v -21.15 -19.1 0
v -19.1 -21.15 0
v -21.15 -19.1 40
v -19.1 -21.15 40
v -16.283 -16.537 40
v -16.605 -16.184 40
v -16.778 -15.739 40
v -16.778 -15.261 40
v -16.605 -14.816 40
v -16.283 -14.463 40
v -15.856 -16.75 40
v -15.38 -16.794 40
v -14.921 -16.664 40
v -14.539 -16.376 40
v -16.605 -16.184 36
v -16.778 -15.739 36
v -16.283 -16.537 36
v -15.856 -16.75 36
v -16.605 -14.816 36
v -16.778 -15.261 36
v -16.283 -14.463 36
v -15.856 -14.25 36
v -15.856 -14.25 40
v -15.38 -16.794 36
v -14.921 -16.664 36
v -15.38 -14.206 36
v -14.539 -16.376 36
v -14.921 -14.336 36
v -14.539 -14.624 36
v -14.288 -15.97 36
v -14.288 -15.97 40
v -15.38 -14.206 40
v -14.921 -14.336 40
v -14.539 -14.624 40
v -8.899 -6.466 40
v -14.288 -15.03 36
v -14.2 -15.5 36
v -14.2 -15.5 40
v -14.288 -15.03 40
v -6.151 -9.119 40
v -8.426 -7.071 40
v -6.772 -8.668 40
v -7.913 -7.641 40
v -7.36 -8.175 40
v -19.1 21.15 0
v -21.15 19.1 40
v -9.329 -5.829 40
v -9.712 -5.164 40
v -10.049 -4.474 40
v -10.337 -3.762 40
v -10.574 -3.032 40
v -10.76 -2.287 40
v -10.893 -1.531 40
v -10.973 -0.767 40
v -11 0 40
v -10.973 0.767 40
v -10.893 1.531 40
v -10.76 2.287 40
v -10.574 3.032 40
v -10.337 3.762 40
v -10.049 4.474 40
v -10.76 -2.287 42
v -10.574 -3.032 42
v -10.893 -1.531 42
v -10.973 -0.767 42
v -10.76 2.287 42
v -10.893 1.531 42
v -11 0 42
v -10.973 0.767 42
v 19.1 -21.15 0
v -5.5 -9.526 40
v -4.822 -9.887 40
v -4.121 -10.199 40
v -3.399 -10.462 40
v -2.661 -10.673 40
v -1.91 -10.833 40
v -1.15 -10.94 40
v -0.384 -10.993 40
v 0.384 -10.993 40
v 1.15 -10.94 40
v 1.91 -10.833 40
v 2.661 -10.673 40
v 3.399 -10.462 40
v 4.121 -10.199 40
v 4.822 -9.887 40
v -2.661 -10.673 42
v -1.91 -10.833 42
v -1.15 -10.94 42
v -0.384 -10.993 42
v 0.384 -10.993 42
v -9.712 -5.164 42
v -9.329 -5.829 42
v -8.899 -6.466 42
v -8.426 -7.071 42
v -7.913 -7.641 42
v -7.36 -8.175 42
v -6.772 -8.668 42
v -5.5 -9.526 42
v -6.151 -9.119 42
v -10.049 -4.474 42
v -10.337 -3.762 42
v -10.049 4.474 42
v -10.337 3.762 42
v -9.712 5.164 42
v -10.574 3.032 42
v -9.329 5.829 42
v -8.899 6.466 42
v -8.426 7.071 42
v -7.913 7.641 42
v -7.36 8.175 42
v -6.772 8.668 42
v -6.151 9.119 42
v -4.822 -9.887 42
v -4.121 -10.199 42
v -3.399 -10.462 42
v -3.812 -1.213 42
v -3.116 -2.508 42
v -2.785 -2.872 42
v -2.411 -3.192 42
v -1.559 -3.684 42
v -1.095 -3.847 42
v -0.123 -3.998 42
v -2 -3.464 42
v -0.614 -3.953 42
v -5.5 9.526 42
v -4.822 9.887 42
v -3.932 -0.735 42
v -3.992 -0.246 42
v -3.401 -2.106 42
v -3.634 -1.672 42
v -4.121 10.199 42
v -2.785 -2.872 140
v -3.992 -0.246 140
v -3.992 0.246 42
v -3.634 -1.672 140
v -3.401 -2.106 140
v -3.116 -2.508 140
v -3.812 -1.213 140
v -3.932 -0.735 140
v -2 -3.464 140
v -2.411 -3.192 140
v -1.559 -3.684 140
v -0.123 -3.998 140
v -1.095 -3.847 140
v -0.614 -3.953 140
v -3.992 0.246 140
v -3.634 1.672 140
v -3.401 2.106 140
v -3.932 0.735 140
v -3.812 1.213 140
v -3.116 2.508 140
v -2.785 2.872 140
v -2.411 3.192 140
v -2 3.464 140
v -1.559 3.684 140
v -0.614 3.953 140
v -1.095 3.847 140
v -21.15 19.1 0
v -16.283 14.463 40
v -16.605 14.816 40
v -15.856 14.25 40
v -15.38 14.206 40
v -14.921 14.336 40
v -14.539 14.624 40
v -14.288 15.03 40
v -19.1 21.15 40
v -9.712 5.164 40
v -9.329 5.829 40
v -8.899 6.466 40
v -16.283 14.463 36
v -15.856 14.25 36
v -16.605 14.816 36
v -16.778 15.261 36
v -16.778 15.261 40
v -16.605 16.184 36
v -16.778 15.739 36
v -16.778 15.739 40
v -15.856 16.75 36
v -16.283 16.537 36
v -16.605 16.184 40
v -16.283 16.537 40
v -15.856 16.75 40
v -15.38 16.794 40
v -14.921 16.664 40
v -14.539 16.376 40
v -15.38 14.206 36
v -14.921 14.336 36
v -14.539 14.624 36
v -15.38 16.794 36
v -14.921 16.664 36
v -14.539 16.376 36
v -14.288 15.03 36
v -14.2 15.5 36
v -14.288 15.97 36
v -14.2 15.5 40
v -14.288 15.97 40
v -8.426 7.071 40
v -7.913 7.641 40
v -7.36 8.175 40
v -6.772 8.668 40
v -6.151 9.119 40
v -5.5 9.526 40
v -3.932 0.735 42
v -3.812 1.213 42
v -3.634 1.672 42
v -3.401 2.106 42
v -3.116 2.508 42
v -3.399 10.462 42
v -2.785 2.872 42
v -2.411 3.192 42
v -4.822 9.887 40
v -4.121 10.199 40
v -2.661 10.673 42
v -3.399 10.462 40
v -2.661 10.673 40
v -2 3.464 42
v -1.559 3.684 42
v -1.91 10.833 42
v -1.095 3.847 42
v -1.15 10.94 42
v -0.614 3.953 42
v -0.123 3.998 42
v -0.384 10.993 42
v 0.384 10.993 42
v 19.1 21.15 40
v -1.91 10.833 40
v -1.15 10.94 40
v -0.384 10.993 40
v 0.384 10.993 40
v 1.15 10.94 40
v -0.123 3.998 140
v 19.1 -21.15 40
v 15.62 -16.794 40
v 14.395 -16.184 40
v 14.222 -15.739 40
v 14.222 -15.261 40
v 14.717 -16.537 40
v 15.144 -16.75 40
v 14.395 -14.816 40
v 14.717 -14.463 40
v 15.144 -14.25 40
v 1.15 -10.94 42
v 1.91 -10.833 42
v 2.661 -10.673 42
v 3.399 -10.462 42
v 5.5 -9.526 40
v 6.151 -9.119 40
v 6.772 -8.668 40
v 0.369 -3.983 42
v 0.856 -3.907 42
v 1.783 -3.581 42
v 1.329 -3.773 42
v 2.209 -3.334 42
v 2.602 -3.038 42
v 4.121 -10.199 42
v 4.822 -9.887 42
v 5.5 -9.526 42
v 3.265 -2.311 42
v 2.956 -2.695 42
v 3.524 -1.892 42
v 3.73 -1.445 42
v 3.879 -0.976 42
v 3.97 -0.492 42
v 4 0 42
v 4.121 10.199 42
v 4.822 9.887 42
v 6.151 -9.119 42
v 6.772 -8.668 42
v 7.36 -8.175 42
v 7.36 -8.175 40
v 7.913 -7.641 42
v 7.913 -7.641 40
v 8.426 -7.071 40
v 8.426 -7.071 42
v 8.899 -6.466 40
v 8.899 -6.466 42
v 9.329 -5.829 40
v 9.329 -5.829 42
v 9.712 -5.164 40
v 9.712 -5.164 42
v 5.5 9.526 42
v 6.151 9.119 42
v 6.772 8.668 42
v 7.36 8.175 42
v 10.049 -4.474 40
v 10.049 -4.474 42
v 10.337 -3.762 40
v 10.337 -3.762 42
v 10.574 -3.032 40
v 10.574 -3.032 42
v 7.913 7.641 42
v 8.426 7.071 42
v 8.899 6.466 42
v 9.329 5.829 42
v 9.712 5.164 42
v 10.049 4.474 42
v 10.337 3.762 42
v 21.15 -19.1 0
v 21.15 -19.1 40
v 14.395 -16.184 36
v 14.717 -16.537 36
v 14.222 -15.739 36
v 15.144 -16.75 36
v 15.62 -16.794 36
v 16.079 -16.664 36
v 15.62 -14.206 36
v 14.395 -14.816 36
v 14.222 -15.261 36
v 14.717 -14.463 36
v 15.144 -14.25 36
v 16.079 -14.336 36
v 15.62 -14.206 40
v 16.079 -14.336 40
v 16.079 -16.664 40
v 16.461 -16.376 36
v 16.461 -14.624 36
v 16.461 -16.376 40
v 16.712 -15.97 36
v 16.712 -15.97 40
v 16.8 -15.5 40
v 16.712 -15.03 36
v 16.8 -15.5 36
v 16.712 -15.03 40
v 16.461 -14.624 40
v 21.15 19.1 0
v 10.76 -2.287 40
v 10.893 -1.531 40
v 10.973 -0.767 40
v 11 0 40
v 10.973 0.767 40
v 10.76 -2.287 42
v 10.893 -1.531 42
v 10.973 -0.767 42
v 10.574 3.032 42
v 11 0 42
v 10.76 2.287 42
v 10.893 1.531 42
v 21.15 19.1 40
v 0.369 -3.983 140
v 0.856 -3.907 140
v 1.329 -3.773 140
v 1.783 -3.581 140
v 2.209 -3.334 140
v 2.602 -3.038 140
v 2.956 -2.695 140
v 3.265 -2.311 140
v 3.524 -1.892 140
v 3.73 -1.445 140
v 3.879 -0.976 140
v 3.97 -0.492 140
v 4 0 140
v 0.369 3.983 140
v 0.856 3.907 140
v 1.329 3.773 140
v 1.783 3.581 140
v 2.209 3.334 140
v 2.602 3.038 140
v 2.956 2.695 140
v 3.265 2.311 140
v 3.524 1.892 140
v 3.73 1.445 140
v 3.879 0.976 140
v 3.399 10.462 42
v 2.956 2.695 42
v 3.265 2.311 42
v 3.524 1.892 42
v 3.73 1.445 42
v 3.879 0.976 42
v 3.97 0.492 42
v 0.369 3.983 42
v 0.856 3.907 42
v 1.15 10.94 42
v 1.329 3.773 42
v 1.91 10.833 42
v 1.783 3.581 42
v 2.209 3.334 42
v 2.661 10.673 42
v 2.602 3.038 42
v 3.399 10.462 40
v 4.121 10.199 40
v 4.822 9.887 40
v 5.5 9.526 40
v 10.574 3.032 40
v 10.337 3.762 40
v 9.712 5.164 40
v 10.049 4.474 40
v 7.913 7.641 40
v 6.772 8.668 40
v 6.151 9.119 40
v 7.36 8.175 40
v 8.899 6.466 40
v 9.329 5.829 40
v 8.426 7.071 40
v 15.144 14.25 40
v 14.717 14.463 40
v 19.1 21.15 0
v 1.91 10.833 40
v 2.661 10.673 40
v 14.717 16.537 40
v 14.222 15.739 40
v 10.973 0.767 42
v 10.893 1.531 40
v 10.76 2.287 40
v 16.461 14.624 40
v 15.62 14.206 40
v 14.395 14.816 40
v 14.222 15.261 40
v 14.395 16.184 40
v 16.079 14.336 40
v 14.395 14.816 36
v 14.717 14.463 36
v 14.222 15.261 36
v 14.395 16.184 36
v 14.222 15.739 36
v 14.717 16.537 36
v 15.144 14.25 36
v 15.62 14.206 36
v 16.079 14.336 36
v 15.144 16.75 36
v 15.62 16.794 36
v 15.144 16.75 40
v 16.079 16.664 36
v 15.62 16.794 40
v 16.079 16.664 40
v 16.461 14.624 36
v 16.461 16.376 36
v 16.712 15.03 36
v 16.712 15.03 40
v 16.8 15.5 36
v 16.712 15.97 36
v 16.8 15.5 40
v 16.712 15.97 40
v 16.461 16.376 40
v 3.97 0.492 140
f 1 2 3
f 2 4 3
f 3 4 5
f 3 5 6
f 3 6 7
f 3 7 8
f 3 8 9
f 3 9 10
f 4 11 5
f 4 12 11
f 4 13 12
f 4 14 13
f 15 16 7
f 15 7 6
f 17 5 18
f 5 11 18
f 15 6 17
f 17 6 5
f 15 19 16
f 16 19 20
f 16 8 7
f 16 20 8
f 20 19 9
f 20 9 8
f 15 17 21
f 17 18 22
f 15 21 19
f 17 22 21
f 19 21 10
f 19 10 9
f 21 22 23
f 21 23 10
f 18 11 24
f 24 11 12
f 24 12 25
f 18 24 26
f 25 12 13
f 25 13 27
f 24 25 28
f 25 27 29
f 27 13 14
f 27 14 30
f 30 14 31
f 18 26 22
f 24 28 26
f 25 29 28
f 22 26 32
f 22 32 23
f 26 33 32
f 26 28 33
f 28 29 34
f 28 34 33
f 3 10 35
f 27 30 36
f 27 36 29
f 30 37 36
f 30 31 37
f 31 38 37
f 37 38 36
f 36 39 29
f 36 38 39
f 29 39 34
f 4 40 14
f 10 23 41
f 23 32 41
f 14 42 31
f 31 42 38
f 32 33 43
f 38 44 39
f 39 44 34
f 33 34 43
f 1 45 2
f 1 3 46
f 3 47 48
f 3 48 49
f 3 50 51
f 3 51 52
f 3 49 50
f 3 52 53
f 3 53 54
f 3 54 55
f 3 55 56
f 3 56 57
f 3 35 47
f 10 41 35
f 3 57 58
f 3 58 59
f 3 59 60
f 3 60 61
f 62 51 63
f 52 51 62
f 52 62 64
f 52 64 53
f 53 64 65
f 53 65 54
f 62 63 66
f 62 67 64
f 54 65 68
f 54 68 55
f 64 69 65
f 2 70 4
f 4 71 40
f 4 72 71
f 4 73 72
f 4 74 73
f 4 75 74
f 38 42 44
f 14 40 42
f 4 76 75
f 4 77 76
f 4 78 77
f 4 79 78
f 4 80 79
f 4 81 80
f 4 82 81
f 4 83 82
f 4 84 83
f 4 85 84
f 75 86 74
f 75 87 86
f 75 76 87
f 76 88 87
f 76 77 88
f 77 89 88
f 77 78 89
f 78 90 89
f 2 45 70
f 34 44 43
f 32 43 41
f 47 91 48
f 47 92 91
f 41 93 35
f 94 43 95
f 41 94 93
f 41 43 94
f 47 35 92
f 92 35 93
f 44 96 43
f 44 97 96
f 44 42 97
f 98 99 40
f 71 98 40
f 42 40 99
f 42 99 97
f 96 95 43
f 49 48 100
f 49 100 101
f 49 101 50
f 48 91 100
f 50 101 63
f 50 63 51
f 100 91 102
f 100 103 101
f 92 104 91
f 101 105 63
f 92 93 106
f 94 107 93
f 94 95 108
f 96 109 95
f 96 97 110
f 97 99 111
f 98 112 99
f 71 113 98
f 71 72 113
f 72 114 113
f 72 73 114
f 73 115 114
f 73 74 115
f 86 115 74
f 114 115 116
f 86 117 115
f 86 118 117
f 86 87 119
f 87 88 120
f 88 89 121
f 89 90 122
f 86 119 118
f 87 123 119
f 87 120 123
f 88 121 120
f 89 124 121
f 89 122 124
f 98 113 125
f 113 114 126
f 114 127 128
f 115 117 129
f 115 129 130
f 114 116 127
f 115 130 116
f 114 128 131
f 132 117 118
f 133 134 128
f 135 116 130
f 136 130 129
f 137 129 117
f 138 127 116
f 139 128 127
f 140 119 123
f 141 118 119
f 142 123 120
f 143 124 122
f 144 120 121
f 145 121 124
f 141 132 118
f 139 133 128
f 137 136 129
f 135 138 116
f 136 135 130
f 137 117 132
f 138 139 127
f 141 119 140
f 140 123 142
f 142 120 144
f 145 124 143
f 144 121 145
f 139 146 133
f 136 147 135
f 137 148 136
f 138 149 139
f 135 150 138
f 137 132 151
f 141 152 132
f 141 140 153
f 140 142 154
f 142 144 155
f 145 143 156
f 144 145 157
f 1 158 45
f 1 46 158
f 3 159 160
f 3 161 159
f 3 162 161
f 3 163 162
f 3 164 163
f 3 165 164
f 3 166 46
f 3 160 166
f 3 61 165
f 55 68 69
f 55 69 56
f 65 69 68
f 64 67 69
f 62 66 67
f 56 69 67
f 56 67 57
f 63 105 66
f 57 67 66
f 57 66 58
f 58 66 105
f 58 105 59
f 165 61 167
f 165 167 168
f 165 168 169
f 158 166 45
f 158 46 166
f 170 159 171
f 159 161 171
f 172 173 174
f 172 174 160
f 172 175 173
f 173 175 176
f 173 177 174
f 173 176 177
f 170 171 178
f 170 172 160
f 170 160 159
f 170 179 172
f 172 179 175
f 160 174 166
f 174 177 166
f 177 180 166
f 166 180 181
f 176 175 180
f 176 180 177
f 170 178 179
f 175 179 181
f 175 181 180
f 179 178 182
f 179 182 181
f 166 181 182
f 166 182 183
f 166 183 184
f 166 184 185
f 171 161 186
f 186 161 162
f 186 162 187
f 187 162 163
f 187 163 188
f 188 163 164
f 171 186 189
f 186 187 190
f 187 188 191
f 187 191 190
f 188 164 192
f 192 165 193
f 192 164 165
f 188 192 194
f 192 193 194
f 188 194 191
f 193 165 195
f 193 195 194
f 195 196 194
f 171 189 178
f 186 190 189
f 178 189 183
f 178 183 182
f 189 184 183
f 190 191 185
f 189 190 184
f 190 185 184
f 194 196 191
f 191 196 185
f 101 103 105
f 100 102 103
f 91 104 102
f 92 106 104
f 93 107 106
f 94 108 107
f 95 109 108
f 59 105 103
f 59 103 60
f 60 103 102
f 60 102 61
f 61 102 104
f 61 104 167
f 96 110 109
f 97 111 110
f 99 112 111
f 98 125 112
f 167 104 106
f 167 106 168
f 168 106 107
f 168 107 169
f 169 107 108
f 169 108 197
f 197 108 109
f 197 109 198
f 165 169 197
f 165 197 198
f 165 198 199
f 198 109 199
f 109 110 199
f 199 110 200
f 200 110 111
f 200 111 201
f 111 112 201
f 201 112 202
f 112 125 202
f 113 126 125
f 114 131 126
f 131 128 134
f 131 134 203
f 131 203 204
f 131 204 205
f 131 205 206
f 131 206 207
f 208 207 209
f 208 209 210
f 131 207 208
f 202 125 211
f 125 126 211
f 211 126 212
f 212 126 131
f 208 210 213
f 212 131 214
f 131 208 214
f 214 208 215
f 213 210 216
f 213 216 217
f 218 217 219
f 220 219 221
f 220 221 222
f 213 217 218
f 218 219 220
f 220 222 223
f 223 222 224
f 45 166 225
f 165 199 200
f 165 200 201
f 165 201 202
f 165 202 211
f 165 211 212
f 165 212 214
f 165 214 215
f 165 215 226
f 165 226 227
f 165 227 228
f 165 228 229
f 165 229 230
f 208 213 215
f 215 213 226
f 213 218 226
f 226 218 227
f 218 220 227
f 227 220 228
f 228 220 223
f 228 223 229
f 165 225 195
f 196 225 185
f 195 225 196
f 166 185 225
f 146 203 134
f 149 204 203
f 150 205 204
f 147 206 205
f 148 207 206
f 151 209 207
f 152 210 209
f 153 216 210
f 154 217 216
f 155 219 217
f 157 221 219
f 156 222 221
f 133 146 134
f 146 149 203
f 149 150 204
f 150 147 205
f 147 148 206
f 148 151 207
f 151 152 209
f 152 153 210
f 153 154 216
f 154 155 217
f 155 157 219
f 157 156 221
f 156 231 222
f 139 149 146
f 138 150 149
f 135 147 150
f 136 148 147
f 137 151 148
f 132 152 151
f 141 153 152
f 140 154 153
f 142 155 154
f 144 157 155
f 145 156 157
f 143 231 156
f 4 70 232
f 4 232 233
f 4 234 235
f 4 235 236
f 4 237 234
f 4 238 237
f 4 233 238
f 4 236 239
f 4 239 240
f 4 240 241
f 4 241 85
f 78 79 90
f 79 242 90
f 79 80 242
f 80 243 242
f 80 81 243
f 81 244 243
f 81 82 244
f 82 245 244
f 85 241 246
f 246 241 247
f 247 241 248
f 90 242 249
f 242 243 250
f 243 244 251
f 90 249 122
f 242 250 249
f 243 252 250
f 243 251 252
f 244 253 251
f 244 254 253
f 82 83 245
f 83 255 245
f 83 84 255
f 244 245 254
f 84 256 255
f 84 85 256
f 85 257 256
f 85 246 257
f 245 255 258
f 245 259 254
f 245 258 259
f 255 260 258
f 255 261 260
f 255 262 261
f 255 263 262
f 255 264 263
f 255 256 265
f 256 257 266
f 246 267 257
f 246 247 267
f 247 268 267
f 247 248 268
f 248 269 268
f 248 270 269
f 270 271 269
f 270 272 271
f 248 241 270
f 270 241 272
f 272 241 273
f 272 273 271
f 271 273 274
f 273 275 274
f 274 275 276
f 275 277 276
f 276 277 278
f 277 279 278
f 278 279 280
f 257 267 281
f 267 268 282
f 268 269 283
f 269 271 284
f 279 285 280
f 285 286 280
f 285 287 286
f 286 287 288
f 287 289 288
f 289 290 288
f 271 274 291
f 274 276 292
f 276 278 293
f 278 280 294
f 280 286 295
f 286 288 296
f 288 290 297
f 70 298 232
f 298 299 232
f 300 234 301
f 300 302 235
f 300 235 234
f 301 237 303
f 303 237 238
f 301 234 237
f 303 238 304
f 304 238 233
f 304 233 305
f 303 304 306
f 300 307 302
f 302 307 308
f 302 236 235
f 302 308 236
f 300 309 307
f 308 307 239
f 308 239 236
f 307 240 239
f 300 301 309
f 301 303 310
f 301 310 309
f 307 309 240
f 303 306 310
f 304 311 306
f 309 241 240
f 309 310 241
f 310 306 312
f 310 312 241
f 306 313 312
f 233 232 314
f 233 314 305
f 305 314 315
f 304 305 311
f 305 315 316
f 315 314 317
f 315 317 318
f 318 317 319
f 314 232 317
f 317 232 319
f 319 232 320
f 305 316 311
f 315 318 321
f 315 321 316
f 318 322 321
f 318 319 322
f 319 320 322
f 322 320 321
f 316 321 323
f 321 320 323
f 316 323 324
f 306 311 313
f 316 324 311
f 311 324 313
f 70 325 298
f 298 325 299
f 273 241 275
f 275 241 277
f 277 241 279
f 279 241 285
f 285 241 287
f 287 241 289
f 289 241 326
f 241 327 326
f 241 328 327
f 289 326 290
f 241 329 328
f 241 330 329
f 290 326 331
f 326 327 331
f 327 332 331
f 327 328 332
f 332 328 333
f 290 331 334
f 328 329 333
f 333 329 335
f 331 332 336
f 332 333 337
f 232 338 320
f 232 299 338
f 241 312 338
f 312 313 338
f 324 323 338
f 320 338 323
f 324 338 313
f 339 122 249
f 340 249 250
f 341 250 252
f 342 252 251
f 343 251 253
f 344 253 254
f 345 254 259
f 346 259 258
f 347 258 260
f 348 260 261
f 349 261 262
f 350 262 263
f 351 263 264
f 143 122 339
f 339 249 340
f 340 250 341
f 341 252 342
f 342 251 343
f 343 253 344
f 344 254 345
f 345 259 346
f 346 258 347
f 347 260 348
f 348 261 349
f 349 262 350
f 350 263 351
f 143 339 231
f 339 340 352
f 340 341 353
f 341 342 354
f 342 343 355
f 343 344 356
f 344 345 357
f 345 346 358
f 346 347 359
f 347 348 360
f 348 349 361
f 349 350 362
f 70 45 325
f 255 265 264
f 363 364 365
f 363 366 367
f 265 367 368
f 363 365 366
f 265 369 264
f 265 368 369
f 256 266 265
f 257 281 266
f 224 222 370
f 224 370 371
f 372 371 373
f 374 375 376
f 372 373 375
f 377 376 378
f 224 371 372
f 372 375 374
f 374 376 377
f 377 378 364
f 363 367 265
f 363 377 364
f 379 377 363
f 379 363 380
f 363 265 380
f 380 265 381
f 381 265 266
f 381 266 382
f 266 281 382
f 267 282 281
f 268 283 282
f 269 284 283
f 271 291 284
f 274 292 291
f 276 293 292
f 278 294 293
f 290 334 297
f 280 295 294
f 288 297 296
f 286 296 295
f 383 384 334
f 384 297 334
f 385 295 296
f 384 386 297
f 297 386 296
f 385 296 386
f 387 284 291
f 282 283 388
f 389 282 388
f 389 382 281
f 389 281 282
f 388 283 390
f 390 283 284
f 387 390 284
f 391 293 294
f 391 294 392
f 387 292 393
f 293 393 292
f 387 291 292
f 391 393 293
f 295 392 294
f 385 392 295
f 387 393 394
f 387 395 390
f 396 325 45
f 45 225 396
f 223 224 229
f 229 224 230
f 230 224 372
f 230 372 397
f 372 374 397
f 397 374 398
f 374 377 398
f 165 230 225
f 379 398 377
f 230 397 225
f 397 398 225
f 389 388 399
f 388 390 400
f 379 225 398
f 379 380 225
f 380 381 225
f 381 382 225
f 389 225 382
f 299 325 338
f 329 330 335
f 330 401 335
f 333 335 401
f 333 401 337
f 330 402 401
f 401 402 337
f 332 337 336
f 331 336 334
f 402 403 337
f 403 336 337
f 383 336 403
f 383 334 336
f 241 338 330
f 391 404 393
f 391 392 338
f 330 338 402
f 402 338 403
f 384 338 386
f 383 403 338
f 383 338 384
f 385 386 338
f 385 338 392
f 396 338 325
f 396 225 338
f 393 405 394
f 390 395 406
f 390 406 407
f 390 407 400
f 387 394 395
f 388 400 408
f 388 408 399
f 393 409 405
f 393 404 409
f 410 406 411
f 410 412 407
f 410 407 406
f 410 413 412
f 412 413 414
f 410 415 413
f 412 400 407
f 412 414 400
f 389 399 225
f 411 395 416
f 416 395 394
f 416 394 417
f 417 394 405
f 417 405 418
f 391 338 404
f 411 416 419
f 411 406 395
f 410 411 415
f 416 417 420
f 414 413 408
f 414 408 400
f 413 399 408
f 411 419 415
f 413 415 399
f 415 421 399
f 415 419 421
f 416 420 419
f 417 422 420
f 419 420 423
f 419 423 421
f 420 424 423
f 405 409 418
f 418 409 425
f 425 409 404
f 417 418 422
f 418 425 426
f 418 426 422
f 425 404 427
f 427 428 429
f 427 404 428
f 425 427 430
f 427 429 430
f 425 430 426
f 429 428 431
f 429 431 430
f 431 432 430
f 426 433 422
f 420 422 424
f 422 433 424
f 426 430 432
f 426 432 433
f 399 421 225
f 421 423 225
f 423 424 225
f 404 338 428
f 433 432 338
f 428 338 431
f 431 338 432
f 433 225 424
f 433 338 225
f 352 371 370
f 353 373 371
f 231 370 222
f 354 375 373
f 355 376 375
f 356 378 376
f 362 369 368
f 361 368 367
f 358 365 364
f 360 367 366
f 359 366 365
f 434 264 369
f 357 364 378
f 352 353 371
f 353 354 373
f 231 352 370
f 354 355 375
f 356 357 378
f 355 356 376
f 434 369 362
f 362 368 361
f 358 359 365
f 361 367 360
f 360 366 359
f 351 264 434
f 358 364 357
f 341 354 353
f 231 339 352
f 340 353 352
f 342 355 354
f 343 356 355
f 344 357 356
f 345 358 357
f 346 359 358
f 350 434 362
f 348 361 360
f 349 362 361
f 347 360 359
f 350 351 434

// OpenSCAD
// file: nema17_pancake.scad
// Vendor model: NEMA17 pancake stepper 42x42x23 (turret drive). Local: body z 0..23, face up, shaft +Z.
include <../params.scad>
include <../lib/lib.scad>
module nema17_body(l) {
    color([0.15,0.15,0.16]) linear_extrude(l) offset(delta = NEMA_CH, chamfer = true) square(NEMA_W - 2 * NEMA_CH, center = true);
    color([0.75,0.75,0.78]) for (z = [0, l - 7]) translate([0, 0, z]) linear_extrude(7) offset(delta = NEMA_CH, chamfer = true) square(NEMA_W - 2 * NEMA_CH - 0.01, center = true);
}
module vendor_nema17_pancake(shaft = 15.5) {
    difference() {
        nema17_body(NEMA_PANCAKE_L);
        for (x = [-1, 1], y = [-1, 1]) translate([x * NEMA_HOLE / 2, y * NEMA_HOLE / 2, NEMA_PANCAKE_L - 4]) cylinder(d = 2.6, h = 5);
    }
    color([0.7,0.7,0.72]) translate([0, 0, NEMA_PANCAKE_L]) cylinder(d = NEMA_BOSS_D, h = NEMA_BOSS_H);
    color("silver") translate([0, 0, NEMA_PANCAKE_L]) cylinder(d = 5, h = shaft);
}

vendor_nema17_pancake();
// file: ../lib/lib.scad
// Shared helpers. Include AFTER params.scad (needs TOL, M3_* etc.).
$fa = 4; $fs = 0.5;

module rrect(size, r) {            // 2D rounded rectangle, centred
    r2 = min(r, min(size[0], size[1]) / 2 - 0.001);
    offset(r = r2) square([size[0] - 2 * r2, size[1] - 2 * r2], center = true);
}
module rbox(size, r, center_xy = true) {   // box with rounded vertical edges
    translate(center_xy ? [0, 0, 0] : [size[0] / 2, size[1] / 2, 0])
        linear_extrude(size[2]) rrect([size[0], size[1]], r);
}
module rbox_at(x0, x1, y0, y1, z0, z1, r = 0.01) {
    translate([(x0 + x1) / 2, (y0 + y1) / 2, z0]) rbox([x1 - x0, y1 - y0, z1 - z0], r);
}
module box_at(x0, x1, y0, y1, z0, z1) { translate([x0, y0, z0]) cube([x1 - x0, y1 - y0, z1 - z0]); }

module ring(ro, ri, h) { difference() { cylinder(r = ro, h = h); translate([0, 0, -1]) cylinder(r = ri, h = h + 2); } }
module ring_sector(ro, ri, h, a0, a1) {
    intersection() {
        ring(ro, ri, h);
        linear_extrude(h) polygon(concat([[0, 0]], [for (a = [a0 : (a1 - a0) / 24 : a1]) 2 * ro * [cos(a), sin(a)]]));
    }
}
// teardrop hole along an axis lying horizontal (axis = Y after rotation), printable w/o support
module teardrop2d(d) { union() { circle(d = d); rotate(45) square(d / 2); } }
// vertical heat-set insert hole, opening at z=0 going +z (depth l)
module insert_hole(l = M3_INSERT_L) { translate([0, 0, -EPS]) cylinder(d = M3_INSERT_D, h = l + EPS); }
module m3_clear(l) { translate([0, 0, -EPS]) cylinder(d = M3_CLEAR, h = l + 2 * EPS); }
module m3_csk(l) {  // countersunk clearance from z=0 upward, head at z=0 side
    translate([0, 0, -EPS]) { cylinder(d = M3_CLEAR, h = l + 2 * EPS); cylinder(d1 = 6.4, d2 = M3_CLEAR, h = 1.7); }
}
module card2d() { rrect([CARD_L, CARD_W], CARD_R); }
module card_at(cy, z) { translate([0, cy, z]) linear_extrude(CARD_T) card2d(); }

// ---- gears ----
function _inv(a) = tan(a) - a * PI_ / 180;           // involute function, a in deg
function _invpt(rb, r, ang0, s) = let(al = acos(rb / r), th = ang0 - s * (_inv(al) * 180 / PI_)) [r * cos(th), r * sin(th)];
module involute_gear2d(m, z, pa = 20, clearance = 0.05) {
    rp = m * z / 2; rb = rp * cos(pa); ra = rp + m - clearance; rf = rp - 1.25 * m;
    half = 90 / z + _inv(pa) * 180 / PI_;            // tooth half-angle at base (deg)
    n = 8;
    rs = [for (i = [0 : n]) max(rb, rf) + (ra - max(rb, rf)) * i / n];
    union() {
        circle(r = rf, $fn = z * 4);
        for (k = [0 : z - 1]) rotate(k * 360 / z) polygon(concat(
            [[rf * cos(-half), rf * sin(-half)]],
            [for (r = rs) let(p = _invpt(rb, r, half, 1)) [p[0], -p[1]]],
            [for (i = [n : -1 : 0]) _invpt(rb, rs[i], half, 1)],
            [[rf * cos(half), rf * sin(half)]]));
    }
}
// straight gear rack (2D in XY: teeth along +x, pointing -y, pitch line at y=0)
module gear_rack2d(m, len, back = 3) {
    p = PI_ * m; ad = m; de = 1.25 * m; t = tan(20);
    n = ceil(len / p) + 1;
    intersection() {
        union() {
            translate([0, de]) square([len, back]);
            for (i = [0 : n]) translate([i * p - p / 4, 0]) polygon([
                [-(p / 4 + de * t), de + 0.01], [p / 4 + de * t + 0.01, de + 0.01],
                [p / 4 - ad * t, -ad], [-(p / 4 - ad * t), -ad] ]);
        }
        translate([0, -ad - 1]) square([len, ad + de + back + 2]);
    }
}
// GT2 belt-tooth profile ring (teeth outward), 2D
module gt2_ring2d(n, r_land, ri) {
    union() {
        difference() { circle(r = r_land + 0.01, $fn = n * 2); circle(r = ri, $fn = n * 2); }
        for (k = [0 : n - 1]) rotate(k * 360 / n)
            translate([r_land, 0]) hull() { translate([-0.2, 0]) square([0.2, 1.0], center = true); translate([0.25, 0]) circle(r = 0.5, $fn = 12); }
    }
}
// main file
// Vendor model: NEMA17 40 mm with integrated T8x8 leadscrew (rack drive). Local: body z 0..40, face up, screw +Z, length LEADSCREW_L from the face.
include <../params.scad>
include <../lib/lib.scad>
use <nema17_pancake.scad>
module vendor_nema17_t8(screw = LEADSCREW_L) {
    difference() {
        nema17_body(NEMA_T8_L);
        for (x = [-1, 1], y = [-1, 1]) translate([x * NEMA_HOLE / 2, y * NEMA_HOLE / 2, NEMA_T8_L - 4]) cylinder(d = 2.6, h = 5);
    }
    color([0.7,0.7,0.72]) translate([0, 0, NEMA_T8_L]) cylinder(d = NEMA_BOSS_D, h = NEMA_BOSS_H);
    color([0.8,0.8,0.82]) translate([0, 0, NEMA_T8_L]) cylinder(d = LEAD_D, h = screw);
}

vendor_nema17_t8();
